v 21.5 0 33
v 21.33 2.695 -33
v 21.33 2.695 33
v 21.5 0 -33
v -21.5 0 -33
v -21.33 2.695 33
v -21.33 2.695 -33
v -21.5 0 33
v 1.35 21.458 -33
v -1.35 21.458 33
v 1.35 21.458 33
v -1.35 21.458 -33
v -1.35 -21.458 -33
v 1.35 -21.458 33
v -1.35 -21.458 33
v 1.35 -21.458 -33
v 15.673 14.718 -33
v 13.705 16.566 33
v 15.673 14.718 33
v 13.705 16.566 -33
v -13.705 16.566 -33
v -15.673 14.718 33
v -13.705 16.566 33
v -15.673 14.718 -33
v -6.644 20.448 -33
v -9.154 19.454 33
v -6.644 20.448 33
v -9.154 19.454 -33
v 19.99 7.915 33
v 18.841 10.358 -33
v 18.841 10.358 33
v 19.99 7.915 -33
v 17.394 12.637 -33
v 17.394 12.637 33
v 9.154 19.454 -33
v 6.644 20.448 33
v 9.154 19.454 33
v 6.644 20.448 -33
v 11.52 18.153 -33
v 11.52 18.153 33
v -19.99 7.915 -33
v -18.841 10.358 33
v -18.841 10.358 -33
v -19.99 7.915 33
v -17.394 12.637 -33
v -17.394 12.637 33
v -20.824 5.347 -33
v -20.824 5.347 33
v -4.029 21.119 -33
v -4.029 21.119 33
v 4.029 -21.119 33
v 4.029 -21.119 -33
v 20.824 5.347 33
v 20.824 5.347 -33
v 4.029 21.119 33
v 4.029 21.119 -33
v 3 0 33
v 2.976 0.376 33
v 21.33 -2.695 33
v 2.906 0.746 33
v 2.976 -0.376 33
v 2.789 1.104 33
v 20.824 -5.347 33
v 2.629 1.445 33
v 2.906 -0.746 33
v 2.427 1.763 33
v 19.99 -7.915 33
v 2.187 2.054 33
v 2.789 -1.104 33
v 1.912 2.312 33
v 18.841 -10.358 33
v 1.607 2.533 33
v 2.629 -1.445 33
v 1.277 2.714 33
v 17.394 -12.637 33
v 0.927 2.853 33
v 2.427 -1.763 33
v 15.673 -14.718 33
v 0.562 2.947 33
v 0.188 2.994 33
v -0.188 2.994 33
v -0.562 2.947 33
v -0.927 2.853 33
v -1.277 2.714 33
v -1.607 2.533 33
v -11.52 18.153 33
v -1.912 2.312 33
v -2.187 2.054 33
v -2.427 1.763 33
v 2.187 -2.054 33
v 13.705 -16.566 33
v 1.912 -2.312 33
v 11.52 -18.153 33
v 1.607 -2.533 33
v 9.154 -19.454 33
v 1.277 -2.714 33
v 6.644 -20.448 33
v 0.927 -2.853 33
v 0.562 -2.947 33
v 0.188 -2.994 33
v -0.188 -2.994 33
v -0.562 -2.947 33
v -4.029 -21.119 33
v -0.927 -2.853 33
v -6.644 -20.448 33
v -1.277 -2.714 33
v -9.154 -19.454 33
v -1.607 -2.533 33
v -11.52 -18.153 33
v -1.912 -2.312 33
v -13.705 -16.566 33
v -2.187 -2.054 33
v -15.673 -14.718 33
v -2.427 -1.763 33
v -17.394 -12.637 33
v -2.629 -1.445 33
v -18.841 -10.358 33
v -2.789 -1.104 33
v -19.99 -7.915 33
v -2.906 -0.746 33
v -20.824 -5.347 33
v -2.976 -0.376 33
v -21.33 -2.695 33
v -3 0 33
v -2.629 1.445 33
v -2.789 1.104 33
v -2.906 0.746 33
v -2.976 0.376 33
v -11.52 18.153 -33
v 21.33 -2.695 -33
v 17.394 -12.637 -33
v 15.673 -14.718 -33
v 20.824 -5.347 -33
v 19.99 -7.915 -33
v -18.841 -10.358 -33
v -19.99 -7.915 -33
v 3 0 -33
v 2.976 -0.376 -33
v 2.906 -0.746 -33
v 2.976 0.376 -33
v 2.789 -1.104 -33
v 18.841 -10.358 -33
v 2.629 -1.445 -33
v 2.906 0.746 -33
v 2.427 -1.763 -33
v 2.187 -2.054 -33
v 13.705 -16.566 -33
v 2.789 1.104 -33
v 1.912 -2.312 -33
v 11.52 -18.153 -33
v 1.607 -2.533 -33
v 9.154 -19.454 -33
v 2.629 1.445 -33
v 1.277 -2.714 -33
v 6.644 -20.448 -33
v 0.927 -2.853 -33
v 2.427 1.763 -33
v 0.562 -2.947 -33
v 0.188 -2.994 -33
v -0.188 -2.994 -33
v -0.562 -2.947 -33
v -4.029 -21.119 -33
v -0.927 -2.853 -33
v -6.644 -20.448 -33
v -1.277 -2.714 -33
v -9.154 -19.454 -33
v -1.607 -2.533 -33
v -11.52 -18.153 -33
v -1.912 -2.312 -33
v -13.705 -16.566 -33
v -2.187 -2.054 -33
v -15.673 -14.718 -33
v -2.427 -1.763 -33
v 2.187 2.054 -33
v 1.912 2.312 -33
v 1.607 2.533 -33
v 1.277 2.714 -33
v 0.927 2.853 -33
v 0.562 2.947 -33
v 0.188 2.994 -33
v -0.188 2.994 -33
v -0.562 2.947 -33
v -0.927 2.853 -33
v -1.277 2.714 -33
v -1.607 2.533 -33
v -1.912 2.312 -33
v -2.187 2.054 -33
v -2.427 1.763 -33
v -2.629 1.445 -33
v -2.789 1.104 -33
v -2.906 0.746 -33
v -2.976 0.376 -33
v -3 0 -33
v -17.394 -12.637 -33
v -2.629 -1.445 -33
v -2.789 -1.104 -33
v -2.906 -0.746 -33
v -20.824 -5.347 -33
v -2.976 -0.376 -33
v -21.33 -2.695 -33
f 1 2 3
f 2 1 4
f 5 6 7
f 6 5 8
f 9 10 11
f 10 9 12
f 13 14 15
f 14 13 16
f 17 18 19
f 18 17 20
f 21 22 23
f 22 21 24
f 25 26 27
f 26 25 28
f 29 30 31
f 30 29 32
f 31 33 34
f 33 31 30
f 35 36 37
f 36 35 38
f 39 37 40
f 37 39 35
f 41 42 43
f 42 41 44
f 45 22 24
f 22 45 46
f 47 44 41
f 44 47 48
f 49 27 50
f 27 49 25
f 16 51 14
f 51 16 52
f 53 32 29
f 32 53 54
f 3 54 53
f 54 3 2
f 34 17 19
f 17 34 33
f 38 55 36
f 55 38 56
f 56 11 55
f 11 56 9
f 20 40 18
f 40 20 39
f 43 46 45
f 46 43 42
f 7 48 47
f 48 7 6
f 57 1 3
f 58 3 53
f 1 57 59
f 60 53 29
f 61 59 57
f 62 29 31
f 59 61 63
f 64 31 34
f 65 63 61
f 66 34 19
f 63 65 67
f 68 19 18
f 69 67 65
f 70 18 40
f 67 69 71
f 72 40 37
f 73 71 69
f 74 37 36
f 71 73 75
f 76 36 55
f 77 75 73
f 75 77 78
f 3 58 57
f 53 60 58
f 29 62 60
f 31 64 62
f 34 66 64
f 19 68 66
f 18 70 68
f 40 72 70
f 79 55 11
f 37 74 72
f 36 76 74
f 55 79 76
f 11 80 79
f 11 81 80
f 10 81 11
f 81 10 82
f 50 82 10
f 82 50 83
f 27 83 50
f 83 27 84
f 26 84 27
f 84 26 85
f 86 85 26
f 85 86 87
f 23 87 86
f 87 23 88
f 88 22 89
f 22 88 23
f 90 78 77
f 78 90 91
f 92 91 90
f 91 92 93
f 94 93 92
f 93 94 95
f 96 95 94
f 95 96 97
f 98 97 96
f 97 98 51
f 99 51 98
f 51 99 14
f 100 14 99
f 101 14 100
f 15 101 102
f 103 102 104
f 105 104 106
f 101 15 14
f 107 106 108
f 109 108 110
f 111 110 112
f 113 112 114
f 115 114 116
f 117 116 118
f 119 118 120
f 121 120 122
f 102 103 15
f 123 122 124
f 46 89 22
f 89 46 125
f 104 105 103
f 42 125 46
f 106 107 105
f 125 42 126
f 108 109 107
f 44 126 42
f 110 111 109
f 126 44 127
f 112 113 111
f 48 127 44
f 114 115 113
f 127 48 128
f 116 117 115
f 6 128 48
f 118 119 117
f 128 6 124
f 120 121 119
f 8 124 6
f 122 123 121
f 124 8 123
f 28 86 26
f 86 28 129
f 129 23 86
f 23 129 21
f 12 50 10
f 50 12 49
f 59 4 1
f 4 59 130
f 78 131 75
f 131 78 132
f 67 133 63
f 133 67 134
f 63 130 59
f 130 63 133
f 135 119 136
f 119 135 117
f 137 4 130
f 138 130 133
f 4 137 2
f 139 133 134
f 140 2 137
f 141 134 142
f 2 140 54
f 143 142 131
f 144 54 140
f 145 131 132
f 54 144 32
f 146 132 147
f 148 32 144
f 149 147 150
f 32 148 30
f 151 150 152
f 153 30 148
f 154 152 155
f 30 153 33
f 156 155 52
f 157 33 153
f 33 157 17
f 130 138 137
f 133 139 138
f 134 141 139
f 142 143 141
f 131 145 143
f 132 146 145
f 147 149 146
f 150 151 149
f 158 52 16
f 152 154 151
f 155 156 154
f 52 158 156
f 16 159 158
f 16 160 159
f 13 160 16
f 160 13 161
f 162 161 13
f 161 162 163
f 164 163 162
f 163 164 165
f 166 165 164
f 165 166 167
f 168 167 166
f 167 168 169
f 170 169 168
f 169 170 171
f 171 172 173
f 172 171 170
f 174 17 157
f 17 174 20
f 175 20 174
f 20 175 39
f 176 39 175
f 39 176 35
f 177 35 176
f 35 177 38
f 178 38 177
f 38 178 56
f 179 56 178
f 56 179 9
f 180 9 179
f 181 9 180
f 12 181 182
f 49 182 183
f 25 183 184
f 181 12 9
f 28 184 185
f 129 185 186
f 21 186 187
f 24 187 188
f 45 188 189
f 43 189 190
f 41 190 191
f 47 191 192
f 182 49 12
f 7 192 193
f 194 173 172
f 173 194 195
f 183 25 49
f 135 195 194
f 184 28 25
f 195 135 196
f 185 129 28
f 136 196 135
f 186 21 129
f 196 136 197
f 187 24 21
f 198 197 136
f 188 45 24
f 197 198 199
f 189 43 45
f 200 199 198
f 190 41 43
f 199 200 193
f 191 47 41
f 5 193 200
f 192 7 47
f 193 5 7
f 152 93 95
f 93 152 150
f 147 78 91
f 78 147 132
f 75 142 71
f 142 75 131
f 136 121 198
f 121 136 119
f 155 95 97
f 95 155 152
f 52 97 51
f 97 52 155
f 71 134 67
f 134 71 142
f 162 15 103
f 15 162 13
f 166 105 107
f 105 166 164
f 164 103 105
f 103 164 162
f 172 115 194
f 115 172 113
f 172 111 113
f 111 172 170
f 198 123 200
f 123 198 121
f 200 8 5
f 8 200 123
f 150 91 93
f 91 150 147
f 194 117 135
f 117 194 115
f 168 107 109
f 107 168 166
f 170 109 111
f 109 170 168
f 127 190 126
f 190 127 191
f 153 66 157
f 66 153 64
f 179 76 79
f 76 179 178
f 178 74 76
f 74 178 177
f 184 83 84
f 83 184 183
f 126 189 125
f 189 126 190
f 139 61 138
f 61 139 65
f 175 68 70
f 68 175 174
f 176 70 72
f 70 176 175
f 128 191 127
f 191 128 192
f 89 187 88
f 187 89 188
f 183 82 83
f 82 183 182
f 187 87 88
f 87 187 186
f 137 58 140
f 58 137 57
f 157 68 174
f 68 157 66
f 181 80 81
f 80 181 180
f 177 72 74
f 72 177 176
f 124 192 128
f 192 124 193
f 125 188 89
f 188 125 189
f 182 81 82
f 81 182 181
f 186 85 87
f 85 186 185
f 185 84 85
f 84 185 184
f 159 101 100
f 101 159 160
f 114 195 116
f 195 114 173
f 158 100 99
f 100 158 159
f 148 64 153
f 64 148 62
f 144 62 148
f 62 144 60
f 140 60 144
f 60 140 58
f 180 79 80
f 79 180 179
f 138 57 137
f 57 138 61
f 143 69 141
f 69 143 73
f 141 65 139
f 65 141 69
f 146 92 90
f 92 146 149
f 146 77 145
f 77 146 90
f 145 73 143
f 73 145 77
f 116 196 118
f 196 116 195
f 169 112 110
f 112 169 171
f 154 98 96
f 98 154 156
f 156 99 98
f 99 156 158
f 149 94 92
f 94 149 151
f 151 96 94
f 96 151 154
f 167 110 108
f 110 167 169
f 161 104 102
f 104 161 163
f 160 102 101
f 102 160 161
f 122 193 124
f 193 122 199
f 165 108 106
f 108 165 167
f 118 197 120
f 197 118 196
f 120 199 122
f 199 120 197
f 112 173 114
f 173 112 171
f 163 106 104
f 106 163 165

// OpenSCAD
$fn = 50;


difference() {
	union() {
		translate(v = [0, 0, -33.0000000000]) {
			cylinder(h = 66, r = 21.5000000000);
		}
	}
	union() {
		translate(v = [0, 0, -100.0000000000]) {
			cylinder(h = 200, r = 3);
		}
	}
}
